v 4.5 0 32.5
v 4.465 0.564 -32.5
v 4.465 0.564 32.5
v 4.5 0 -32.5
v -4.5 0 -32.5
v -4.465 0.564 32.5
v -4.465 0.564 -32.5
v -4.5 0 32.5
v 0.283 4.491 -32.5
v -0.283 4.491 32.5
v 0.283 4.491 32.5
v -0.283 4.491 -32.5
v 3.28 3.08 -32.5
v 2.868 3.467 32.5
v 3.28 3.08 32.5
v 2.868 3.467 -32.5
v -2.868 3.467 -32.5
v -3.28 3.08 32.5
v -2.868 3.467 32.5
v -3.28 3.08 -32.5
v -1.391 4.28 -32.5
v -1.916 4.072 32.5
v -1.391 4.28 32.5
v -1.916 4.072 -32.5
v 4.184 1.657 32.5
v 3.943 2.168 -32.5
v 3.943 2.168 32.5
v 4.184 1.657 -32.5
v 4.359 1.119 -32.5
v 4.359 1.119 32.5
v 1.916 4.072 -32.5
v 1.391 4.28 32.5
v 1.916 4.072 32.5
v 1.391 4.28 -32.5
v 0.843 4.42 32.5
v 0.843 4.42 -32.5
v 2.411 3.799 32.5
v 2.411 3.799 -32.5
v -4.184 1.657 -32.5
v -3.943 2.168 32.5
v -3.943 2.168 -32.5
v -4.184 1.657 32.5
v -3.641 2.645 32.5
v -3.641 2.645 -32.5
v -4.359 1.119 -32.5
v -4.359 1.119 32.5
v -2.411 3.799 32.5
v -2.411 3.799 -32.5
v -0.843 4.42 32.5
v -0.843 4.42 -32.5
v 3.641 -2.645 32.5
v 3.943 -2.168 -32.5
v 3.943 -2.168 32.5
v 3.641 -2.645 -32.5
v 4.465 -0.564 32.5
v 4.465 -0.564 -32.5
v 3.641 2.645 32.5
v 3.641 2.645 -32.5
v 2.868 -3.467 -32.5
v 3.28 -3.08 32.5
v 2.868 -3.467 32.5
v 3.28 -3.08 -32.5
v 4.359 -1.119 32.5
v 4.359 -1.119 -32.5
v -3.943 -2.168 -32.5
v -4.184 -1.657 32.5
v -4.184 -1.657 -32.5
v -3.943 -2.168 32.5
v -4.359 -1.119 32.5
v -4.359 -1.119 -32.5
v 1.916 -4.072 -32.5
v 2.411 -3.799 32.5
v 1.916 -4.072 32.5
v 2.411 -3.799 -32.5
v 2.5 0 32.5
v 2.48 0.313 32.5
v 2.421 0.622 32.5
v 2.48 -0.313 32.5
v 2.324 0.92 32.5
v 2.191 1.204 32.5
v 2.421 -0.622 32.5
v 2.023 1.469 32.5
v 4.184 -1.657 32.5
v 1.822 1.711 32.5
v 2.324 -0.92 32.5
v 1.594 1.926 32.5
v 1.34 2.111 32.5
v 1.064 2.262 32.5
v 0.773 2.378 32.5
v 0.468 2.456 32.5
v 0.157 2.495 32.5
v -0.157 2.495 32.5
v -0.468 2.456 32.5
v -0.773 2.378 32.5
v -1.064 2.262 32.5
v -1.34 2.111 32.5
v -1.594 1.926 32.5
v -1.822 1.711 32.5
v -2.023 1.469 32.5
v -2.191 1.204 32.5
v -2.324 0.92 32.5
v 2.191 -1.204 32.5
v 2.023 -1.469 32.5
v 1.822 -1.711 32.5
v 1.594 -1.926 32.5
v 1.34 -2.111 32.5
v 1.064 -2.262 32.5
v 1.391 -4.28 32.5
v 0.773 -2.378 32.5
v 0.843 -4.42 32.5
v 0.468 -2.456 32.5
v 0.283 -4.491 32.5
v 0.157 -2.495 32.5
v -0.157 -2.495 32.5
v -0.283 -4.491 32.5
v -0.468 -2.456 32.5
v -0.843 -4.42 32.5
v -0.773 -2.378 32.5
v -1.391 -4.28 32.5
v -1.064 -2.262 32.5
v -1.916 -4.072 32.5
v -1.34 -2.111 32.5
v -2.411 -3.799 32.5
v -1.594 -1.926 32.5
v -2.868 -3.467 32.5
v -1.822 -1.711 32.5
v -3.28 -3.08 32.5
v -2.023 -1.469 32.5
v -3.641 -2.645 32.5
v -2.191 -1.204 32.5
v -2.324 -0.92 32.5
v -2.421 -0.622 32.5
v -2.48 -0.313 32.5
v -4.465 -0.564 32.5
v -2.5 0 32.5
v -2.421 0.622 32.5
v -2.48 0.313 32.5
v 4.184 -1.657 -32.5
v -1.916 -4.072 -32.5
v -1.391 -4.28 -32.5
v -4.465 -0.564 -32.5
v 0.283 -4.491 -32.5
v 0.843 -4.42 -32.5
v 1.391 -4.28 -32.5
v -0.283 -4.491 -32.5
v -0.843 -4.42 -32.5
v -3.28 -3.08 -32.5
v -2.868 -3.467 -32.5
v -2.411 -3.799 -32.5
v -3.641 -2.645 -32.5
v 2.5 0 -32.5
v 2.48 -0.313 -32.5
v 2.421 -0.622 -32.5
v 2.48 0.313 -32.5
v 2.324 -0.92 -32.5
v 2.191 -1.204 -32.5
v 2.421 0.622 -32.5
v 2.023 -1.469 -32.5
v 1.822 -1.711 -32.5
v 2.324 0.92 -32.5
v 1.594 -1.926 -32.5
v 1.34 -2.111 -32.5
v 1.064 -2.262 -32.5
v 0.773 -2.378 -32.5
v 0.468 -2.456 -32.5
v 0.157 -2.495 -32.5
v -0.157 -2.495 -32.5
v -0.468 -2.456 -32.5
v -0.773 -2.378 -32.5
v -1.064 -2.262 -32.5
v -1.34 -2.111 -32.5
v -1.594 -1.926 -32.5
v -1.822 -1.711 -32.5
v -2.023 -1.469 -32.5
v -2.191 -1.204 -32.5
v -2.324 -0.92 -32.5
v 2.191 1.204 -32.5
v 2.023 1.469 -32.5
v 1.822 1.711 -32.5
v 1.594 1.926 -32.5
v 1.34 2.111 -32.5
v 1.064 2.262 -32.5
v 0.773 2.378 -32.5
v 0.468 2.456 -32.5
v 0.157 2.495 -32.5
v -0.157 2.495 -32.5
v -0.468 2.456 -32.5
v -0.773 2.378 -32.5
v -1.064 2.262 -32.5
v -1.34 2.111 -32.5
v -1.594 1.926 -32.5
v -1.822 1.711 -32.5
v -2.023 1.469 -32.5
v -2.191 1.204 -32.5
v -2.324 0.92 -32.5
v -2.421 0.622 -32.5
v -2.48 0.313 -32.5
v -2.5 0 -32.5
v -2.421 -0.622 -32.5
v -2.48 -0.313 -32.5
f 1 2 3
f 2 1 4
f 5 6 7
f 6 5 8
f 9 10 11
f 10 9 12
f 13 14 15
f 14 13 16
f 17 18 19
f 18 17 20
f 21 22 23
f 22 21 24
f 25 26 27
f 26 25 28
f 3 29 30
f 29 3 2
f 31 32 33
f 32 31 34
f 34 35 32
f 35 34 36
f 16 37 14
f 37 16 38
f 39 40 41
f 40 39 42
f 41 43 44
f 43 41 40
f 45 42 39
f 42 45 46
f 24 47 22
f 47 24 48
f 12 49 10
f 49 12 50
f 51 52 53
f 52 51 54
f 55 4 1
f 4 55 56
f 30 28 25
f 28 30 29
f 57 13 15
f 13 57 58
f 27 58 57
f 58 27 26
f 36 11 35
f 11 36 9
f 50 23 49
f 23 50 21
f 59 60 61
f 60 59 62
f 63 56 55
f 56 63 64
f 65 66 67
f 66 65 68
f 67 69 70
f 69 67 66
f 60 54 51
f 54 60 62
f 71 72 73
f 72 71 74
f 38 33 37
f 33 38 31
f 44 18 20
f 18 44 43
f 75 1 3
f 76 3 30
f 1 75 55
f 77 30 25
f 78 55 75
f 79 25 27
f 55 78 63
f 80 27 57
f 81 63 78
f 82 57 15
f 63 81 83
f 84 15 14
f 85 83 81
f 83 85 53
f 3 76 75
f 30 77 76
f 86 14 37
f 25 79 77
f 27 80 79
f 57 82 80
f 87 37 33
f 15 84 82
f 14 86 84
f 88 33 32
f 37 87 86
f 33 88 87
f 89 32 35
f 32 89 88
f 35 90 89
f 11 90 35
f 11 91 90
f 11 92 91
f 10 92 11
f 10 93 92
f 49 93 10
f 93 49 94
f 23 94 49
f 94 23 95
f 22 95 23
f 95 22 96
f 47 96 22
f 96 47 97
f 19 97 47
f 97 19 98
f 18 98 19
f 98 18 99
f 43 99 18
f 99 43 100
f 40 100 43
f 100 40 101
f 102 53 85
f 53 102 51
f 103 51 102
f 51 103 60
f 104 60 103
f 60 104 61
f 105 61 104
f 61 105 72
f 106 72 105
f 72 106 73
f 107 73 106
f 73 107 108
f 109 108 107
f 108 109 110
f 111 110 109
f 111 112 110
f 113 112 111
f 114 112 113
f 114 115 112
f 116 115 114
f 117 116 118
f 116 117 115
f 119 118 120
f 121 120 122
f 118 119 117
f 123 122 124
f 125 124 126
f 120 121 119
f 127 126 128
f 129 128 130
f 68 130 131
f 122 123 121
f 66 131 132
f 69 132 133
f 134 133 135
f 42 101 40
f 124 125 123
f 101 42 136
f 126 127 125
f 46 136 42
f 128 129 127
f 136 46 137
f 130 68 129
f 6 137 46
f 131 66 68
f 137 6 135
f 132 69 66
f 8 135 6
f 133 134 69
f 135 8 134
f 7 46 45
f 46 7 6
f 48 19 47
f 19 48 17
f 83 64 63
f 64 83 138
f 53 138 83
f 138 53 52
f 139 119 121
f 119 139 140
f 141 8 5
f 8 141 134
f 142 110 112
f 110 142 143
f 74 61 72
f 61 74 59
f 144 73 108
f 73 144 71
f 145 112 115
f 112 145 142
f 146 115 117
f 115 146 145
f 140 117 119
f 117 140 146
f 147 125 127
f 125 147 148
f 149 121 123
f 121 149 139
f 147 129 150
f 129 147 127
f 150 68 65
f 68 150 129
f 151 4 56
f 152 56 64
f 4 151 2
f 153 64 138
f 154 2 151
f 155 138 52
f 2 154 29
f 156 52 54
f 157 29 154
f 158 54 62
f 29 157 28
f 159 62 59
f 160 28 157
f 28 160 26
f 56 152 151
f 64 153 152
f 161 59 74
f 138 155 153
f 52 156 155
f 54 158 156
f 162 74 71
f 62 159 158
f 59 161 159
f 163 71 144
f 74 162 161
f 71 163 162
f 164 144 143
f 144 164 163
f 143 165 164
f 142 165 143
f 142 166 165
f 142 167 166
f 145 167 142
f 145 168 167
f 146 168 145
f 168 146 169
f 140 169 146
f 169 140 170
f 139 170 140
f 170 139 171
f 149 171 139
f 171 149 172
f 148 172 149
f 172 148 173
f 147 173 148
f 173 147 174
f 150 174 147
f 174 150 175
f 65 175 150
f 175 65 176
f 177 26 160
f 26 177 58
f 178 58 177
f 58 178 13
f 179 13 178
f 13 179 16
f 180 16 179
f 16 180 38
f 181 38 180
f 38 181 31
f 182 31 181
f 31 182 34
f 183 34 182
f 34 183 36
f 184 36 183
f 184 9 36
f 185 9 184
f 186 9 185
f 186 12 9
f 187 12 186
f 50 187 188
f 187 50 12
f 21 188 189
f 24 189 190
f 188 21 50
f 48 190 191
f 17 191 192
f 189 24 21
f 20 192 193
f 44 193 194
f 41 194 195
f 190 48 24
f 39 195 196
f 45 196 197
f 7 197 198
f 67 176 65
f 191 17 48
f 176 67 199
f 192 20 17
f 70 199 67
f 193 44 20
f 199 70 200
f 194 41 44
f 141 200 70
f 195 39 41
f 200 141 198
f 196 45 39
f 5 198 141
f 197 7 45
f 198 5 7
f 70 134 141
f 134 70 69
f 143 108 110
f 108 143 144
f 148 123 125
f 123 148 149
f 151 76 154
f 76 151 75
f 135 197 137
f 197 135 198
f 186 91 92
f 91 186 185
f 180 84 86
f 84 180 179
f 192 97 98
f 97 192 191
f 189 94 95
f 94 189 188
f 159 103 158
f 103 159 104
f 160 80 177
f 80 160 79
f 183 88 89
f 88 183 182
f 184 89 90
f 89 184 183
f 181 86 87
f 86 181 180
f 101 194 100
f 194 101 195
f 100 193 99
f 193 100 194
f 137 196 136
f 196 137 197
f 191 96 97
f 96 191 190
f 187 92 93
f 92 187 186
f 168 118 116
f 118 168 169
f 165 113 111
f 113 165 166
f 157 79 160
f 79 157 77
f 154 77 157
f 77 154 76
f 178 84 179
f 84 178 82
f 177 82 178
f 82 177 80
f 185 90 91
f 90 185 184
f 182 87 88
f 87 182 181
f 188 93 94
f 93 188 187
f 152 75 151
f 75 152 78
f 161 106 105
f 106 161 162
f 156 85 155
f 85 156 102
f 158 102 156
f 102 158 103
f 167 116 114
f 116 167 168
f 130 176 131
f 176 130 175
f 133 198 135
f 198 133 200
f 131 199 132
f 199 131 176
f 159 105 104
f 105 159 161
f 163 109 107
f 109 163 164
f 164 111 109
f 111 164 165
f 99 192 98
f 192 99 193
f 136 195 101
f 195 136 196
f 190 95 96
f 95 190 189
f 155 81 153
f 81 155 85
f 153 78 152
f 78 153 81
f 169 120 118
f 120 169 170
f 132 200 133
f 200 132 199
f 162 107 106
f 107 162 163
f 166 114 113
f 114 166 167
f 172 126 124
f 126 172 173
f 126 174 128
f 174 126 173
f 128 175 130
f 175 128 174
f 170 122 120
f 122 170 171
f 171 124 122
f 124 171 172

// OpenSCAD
$fn = 50;


difference() {
	union() {
		translate(v = [0, 0, -32.5000000000]) {
			cylinder(h = 65, r = 4.5000000000);
		}
	}
	union() {
		translate(v = [0, 0, -100.0000000000]) {
			cylinder(h = 200, r = 2.5000000000);
		}
	}
}
